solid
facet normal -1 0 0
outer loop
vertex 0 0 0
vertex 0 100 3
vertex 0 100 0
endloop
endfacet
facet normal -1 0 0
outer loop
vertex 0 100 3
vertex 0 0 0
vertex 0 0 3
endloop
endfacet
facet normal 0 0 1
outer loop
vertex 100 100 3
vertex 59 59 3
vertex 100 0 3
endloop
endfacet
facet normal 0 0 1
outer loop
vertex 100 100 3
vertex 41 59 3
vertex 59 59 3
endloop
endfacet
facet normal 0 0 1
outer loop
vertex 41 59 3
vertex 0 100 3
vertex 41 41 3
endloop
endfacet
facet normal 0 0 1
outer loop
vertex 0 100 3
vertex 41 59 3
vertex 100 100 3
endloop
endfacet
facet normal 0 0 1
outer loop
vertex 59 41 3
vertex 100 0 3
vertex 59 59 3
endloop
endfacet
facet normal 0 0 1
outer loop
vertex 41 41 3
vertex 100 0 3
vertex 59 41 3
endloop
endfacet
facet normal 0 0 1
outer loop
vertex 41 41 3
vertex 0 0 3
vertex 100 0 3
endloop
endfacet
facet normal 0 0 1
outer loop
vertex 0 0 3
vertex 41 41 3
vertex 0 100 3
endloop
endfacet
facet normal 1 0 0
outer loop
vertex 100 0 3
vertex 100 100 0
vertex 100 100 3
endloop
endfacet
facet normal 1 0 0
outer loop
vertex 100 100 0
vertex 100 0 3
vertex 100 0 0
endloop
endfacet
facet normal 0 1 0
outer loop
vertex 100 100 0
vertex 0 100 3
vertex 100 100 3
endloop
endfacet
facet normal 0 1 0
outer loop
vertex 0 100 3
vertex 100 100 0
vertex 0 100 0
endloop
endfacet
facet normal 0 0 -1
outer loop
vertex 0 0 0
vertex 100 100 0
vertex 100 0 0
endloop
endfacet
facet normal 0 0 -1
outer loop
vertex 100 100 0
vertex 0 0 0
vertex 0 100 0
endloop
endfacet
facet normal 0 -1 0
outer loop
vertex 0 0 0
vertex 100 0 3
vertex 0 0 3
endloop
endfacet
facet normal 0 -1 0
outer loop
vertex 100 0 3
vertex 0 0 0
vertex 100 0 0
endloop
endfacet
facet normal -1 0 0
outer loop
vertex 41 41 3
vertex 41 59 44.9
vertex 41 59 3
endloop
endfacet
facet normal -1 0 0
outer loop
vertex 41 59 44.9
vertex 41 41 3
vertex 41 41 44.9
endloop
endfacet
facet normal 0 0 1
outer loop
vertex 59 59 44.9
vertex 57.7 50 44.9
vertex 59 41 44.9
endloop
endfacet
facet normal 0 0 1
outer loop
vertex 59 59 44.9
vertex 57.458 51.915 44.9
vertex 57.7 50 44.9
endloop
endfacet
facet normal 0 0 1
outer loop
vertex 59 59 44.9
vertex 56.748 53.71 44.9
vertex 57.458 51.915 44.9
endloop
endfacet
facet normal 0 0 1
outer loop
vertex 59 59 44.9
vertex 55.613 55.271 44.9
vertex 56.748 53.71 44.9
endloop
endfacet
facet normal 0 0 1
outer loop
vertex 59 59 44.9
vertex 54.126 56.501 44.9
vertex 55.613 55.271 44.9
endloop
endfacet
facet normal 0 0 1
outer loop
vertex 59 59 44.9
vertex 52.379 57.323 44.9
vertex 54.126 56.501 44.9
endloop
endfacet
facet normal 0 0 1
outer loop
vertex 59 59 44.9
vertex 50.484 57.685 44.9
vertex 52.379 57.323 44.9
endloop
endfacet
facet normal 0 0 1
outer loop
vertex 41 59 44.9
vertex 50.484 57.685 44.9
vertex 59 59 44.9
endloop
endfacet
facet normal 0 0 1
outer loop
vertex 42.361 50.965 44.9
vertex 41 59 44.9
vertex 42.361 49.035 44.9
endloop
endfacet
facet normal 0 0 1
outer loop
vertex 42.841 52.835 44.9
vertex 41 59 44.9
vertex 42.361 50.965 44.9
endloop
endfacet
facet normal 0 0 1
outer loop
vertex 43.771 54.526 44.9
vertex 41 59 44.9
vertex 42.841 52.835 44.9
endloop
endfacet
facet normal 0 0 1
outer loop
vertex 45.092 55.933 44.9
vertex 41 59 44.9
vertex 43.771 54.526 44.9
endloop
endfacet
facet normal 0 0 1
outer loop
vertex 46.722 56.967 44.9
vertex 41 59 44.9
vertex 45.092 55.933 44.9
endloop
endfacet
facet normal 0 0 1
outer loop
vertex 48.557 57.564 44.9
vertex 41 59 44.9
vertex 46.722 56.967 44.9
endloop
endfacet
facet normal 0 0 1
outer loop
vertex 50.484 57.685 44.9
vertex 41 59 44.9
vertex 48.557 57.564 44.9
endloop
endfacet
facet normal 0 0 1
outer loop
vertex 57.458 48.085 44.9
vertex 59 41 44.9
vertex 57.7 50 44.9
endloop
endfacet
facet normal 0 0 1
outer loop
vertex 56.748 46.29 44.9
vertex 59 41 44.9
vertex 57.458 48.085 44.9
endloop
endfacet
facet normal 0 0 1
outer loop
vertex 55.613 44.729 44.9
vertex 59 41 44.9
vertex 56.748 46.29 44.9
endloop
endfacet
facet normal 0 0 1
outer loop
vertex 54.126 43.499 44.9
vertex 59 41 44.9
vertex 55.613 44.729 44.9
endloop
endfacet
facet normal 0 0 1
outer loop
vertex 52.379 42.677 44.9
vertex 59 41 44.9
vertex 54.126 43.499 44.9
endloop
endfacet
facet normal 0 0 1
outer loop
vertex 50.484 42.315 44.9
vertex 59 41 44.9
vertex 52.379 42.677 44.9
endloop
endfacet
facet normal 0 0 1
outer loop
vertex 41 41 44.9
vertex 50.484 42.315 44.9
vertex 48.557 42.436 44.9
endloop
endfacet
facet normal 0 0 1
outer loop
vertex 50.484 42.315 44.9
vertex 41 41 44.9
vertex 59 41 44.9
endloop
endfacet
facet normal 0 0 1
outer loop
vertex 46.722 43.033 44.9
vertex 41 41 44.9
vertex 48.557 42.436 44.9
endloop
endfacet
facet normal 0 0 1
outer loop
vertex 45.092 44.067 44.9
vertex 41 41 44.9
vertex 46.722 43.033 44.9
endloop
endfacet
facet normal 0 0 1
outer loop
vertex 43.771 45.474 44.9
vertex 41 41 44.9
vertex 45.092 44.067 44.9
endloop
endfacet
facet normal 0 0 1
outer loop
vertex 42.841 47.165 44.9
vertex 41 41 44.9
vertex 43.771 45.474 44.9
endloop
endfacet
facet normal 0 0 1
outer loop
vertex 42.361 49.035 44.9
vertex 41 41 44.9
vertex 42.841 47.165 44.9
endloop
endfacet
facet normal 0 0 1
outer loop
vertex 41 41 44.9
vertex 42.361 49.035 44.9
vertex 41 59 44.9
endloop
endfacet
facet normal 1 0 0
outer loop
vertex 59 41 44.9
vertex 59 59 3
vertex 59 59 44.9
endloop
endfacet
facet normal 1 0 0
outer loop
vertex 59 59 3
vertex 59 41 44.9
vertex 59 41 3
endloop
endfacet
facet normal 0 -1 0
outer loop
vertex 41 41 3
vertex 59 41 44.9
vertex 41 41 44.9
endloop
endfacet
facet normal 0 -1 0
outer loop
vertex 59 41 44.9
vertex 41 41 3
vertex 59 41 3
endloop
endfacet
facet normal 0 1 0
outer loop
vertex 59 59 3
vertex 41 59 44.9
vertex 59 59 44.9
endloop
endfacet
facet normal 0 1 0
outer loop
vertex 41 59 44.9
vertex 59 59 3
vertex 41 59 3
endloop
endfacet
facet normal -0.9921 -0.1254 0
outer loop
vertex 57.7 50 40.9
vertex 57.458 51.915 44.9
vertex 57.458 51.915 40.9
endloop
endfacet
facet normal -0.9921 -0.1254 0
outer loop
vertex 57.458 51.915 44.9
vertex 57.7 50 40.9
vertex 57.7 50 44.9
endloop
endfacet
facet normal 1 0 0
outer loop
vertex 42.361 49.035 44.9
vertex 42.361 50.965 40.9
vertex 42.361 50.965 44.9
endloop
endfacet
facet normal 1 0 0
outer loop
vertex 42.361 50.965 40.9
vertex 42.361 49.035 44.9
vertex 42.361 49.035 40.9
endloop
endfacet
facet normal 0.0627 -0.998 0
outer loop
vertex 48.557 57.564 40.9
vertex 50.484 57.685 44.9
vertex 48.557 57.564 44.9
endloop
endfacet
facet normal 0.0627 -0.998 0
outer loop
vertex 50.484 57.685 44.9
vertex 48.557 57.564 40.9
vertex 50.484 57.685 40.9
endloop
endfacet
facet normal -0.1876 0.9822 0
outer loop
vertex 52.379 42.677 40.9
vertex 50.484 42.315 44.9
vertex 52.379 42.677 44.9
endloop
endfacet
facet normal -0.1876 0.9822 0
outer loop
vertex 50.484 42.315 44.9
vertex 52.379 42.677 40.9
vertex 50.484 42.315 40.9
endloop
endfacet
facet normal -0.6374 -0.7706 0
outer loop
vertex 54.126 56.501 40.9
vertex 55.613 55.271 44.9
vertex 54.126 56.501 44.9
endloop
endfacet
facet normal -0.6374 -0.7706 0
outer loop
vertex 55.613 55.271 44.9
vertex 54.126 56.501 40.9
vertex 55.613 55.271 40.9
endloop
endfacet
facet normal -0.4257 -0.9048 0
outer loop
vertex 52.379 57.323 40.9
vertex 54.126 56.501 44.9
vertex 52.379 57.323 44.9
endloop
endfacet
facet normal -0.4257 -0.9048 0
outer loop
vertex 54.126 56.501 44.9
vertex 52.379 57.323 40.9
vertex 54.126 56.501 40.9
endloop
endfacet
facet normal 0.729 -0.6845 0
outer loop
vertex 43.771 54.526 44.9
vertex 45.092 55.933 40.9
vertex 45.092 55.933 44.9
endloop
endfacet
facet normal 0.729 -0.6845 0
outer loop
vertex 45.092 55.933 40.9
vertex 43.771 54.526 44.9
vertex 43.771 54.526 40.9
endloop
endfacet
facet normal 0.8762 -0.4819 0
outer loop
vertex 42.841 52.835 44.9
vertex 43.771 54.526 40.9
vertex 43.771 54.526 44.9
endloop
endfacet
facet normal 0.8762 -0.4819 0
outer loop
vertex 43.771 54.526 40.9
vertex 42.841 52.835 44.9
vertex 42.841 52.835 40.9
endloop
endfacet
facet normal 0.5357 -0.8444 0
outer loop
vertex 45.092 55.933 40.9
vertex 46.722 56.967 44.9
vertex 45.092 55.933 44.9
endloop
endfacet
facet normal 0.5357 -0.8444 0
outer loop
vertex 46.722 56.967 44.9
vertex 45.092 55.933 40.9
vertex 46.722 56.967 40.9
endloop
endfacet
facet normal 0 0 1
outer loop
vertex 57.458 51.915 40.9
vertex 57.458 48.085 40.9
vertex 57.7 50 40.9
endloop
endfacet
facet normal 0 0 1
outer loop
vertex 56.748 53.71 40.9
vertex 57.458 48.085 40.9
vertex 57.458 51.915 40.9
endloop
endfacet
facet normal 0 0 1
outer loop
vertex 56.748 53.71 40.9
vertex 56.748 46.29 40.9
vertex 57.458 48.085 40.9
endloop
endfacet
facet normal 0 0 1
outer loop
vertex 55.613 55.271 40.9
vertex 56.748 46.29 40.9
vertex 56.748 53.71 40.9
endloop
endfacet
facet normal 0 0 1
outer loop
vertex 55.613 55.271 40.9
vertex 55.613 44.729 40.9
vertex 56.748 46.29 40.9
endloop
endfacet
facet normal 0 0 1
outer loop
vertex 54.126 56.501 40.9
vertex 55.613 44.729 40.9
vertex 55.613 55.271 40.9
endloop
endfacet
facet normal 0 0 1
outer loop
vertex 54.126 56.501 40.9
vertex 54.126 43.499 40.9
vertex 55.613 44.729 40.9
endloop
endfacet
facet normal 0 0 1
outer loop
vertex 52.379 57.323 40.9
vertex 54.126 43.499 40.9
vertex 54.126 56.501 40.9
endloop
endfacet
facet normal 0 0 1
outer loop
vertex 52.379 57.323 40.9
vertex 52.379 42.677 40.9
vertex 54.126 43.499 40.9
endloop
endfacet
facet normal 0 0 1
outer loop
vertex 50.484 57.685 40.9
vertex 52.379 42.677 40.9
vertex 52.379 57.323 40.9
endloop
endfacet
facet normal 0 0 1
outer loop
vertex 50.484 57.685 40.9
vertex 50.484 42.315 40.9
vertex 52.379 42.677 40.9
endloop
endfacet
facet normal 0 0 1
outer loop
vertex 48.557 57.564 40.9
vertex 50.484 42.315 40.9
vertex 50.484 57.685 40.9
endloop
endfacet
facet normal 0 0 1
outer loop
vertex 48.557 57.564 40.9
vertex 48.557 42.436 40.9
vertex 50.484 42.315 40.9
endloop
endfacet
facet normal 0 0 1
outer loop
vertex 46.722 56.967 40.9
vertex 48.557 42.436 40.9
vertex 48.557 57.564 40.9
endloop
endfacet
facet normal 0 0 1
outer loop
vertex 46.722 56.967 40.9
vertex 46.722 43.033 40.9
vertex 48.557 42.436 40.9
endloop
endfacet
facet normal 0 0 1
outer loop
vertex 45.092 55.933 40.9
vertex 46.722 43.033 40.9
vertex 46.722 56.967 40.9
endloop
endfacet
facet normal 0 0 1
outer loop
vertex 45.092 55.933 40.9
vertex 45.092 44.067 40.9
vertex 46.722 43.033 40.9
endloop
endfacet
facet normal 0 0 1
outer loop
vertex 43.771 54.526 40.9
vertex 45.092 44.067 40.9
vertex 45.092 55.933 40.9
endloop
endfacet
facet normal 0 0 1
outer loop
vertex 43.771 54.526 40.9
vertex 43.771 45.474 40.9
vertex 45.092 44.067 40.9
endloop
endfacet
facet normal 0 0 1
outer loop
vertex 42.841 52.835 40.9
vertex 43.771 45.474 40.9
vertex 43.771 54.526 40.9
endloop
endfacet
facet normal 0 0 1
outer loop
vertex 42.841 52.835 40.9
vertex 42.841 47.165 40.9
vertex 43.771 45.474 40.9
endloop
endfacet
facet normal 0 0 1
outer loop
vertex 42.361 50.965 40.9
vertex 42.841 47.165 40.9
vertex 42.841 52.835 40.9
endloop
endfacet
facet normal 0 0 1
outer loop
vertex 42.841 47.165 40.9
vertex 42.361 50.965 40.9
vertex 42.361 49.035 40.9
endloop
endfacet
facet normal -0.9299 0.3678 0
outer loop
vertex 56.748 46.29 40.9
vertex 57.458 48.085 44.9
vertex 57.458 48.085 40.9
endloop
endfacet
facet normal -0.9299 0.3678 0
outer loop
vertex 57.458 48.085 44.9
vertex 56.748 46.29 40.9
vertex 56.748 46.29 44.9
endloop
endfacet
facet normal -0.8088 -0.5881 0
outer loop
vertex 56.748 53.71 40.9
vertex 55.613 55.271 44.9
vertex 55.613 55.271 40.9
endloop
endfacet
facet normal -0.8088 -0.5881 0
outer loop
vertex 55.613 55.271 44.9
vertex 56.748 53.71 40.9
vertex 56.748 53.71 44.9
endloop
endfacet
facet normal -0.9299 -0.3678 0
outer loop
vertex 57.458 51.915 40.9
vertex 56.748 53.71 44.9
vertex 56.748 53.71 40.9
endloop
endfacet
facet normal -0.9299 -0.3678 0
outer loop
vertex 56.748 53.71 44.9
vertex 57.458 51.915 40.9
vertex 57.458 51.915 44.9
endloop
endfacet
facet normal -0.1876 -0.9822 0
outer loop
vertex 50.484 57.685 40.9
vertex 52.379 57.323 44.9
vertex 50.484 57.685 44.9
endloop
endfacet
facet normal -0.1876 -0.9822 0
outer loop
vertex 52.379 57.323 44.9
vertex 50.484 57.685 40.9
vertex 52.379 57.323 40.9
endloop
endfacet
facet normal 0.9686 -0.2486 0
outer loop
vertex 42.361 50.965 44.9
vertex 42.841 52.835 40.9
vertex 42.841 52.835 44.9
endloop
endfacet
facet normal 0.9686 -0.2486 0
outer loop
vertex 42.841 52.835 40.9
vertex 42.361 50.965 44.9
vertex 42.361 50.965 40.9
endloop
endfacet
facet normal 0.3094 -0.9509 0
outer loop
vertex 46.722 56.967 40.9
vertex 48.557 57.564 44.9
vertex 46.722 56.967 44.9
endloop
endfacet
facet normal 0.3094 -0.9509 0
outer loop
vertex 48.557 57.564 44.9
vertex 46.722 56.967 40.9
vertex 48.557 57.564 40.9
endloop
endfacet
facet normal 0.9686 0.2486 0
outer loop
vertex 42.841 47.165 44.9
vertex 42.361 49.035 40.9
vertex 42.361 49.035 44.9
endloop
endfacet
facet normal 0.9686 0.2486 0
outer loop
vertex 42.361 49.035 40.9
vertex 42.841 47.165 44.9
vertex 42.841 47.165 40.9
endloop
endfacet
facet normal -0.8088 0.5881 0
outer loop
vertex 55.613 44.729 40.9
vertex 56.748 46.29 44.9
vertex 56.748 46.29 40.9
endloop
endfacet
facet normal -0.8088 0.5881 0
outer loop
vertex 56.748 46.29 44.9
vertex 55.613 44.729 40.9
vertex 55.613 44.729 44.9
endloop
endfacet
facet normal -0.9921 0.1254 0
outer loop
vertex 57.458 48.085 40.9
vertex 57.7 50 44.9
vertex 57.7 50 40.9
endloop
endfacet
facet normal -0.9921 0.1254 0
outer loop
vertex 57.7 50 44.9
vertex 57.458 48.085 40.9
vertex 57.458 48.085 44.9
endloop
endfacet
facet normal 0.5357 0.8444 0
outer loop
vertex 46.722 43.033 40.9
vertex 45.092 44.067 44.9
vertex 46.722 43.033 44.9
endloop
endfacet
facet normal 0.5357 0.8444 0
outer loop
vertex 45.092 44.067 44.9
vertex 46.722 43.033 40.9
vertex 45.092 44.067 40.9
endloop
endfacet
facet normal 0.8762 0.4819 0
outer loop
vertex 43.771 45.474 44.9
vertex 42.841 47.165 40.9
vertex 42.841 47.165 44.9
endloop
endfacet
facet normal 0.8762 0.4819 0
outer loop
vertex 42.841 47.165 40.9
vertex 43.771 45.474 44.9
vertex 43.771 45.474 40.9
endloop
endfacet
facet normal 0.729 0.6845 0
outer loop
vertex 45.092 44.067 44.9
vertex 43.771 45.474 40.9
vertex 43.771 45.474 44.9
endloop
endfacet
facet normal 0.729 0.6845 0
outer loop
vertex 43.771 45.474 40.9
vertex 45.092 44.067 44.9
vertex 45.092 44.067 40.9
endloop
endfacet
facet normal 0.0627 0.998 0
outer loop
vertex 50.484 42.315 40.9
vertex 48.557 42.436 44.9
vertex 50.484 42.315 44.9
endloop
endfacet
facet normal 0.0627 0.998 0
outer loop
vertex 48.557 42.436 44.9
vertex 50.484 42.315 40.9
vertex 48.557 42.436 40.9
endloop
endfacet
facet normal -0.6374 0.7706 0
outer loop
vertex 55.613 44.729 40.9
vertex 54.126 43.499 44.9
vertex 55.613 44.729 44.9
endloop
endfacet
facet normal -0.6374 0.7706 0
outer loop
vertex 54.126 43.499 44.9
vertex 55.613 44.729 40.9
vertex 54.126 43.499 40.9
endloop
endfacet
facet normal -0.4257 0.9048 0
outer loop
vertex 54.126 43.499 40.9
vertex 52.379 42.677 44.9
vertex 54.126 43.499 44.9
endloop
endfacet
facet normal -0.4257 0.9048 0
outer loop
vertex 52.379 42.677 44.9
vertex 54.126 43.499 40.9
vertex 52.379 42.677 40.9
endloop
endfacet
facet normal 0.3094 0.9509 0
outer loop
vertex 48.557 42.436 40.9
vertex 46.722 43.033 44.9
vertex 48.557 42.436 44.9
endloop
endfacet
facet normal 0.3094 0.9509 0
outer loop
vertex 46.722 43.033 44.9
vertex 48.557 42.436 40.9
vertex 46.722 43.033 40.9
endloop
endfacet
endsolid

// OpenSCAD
// file: SquarePileLib.scad
module LeftPile(wallThickness, totalHeight, singlePileHeight, singlePileWidth, singlePileLength, pileCount){
//    15.05 by 14.95 by 2.15
    pileHeight = (pileCount * singlePileHeight) + .5;
    openingSize = singlePileWidth * .75;
    blockerSize = (singlePileLength - openingSize) / 2;
    
    translate([wallThickness, wallThickness, totalHeight - pileHeight])
        cube([singlePileLength, singlePileWidth, pileHeight]);
    translate([-.00001, wallThickness + (blockerSize), 0])
        cube([wallThickness + openingSize, openingSize, totalHeight]);
}

module RightPile(wallThickness, totalHeight, singlePileHeight, singlePileWidth, singlePileLength, pileCount){
    translate([0, wallThickness + wallThickness + singlePileWidth, 0])
        rotate([0, 0, 180])
            LeftPile(wallThickness, totalHeight, singlePileHeight, singlePileWidth, singlePileLength, pileCount);
}

module BottomPile(wallThickness, totalHeight, singlePileHeight, singlePileWidth, singlePileLength, pileCount){
    translate([wallThickness + wallThickness + singlePileWidth, 0, 0])
        rotate([0, 0, 90])
            LeftPile(wallThickness, totalHeight, singlePileHeight, singlePileWidth, singlePileLength, pileCount);
}

module TopPile(wallThickness, totalHeight, singlePileHeight, singlePileWidth, singlePileLength, pileCount){
//    translate([
//        wallThickness + wallThickness + singlePileWidth,
//        wallThickness + wallThickness + singlePileWidth,
//        0])
        rotate([0, 0, 270])
            LeftPile(wallThickness, totalHeight, singlePileHeight, singlePileWidth, singlePileLength, pileCount);
}
// file: ColonistsBuildingsLib.scad
include<SquarePileLib.scad>
//25.82 by 32.82 by 2.15
singleBuildingPileHeight = 2.15;
singleBuildingPileWidth = 25.82 + 1.5;
singleBuildingPileLength = 32.82 + 1.5;

module LeftBuildingPile(wallThickness, totalHeight, buildingPileCount){
    LeftPile(
        wallThickness,
        totalHeight,
        singleBuildingPileHeight,
        singleBuildingPileWidth,
        singleBuildingPileLength,
        buildingPileCount);
}

module RightBuildingPile(wallThickness, totalHeight, buildingPileCount){
    RightPile(
        wallThickness,
        totalHeight,
        singleBuildingPileHeight,
        singleBuildingPileWidth,
        singleBuildingPileLength,
        buildingPileCount);
}

module BottomBuildingPile(wallThickness, totalHeight, buildingPileCount){
    BottomPile(
        wallThickness,
        totalHeight,
        singleBuildingPileHeight,
        singleBuildingPileWidth,
        singleBuildingPileLength,
        buildingPileCount);
}

module TopBuildingPile(wallThickness, totalHeight, buildingPileCount){
    TopPile(
        wallThickness,
        totalHeight,
        singleBuildingPileHeight,
        singleBuildingPileWidth,
        singleBuildingPileLength,
        buildingPileCount);
}

function buildingPileHeight(buildingPileCount) =
    (buildingPileCount * singleBuildingPileHeight) + .5;
// main file
include<ColonistsBuildingsLib.scad>

length = 100;
width = 100;

height = 3;


magnetHoleWidth = 19;
floorThickness = 3;
maxBuildingsPerStack = 8;
singleLayerHeight = buildingPileHeight(maxBuildingsPerStack) + floorThickness;
pillarHeight = (singleLayerHeight * 2)+ .5 + height;
echo (pillarHeight);

//Based on magnet size:
pillarSideLength = 18;
pillarSideOffset = .5;

magnetBaseInnerDiameter = 15.4;
magnetHeight = 4.0;

spaceBetweenCircles = 2;


difference() {
union(){
    cube([length, width, height]);


//----------------------------------


            
//---------------------------------------------------------------------
    
          

//----------------------------------------
   
    translate([length/2 - ((pillarSideLength)/2), width/2 - ((pillarSideLength)/2), 0])
        cube([pillarSideLength, pillarSideLength, pillarHeight]);
        

}
    translate([length/2,  width/2, pillarHeight - magnetHeight])
        cylinder(magnetHeight, d=magnetBaseInnerDiameter);

}
